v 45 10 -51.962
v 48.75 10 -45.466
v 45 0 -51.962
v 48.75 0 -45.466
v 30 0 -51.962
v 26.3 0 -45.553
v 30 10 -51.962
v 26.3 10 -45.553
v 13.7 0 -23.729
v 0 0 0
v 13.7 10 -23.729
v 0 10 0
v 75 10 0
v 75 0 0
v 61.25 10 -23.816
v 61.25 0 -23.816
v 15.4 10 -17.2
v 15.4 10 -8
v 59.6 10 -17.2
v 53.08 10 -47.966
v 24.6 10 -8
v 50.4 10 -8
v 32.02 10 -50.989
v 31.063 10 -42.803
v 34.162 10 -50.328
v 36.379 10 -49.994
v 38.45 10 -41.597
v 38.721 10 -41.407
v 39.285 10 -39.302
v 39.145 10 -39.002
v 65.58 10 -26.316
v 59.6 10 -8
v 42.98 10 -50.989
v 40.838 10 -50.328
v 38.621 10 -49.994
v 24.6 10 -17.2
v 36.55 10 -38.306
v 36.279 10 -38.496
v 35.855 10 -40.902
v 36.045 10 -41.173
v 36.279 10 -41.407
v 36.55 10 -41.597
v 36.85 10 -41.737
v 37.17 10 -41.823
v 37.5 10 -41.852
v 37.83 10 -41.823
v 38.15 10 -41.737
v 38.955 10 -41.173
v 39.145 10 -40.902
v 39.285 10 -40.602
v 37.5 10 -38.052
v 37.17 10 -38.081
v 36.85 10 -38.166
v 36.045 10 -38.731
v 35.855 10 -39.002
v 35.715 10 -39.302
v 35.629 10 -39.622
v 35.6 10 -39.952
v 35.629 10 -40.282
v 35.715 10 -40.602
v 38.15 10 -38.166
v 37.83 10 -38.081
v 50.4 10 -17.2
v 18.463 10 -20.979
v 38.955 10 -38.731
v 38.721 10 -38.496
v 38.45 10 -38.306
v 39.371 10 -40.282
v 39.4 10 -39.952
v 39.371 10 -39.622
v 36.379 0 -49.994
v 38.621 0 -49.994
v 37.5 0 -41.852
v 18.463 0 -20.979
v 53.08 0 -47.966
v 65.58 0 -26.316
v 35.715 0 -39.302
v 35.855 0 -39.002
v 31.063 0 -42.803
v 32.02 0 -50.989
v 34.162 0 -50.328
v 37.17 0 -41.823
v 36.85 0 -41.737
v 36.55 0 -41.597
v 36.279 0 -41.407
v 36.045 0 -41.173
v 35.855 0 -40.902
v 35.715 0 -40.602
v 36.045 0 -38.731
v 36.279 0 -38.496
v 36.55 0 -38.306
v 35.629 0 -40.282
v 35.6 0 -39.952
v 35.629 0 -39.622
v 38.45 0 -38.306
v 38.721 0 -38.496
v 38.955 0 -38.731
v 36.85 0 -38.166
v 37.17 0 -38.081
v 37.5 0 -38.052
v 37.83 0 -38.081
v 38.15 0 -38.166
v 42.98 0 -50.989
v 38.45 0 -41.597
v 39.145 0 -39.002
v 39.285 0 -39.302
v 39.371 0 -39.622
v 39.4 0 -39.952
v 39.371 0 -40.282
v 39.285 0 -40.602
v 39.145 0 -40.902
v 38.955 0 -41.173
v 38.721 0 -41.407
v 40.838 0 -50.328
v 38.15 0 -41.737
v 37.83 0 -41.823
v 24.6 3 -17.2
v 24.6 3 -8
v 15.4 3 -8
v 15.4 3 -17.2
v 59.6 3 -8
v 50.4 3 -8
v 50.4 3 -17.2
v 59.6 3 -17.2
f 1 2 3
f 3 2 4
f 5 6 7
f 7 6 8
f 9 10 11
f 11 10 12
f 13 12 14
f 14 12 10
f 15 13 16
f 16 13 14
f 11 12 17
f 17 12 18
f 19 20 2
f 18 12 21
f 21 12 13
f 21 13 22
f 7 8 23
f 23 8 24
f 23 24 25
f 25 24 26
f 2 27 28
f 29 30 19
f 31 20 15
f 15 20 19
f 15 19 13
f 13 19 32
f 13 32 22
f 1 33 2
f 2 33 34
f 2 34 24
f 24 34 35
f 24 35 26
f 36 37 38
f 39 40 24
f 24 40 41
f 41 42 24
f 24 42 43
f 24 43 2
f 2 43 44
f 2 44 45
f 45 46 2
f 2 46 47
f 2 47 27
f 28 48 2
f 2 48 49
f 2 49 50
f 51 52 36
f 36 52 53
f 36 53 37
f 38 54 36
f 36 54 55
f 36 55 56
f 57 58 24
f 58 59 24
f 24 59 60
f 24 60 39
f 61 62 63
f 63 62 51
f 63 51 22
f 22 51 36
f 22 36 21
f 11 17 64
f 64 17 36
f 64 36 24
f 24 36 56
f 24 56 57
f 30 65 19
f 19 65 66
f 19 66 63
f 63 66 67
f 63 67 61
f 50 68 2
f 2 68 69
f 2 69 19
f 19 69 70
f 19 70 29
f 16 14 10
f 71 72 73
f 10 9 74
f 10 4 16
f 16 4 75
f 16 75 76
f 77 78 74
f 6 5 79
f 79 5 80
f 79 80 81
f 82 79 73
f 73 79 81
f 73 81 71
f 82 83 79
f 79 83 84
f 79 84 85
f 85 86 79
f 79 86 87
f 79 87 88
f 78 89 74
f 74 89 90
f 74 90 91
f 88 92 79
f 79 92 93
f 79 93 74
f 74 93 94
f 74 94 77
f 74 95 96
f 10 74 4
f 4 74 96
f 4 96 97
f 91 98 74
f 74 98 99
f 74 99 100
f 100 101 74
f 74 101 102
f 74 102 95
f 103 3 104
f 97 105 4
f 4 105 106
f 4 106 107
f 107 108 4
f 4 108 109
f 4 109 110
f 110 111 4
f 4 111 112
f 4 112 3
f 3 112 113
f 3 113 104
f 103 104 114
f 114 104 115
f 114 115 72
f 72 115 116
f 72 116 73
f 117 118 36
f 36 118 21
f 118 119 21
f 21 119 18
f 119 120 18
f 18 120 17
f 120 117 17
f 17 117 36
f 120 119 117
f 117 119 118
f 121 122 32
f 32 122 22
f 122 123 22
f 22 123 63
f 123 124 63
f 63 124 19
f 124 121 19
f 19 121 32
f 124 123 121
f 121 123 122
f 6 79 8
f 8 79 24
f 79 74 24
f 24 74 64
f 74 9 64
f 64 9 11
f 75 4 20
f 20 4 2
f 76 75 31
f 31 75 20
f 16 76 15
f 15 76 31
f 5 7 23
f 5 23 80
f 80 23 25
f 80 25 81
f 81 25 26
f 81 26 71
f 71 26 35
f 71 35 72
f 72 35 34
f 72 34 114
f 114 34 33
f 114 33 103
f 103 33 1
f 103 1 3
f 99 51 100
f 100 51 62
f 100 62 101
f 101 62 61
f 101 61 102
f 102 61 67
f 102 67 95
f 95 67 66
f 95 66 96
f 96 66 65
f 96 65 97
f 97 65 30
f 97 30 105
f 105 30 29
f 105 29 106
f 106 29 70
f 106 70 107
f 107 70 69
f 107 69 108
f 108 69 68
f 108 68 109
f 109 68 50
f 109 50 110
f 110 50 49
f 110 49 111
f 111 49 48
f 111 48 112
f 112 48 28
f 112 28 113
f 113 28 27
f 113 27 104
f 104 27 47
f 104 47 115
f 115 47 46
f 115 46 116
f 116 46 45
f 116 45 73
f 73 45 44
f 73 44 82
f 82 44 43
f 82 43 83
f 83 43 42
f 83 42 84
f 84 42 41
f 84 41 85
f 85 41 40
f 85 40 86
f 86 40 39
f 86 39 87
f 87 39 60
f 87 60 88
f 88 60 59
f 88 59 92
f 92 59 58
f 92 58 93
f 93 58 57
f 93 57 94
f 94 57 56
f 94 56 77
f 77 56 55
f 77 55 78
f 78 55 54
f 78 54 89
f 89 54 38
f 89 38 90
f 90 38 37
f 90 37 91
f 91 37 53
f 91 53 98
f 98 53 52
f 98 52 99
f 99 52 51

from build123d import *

# Parameters (mm, degrees)
BOSS_EXTRUDE1_DEPTH = 10
SKETCH2_W           = 9.2
SKETCH2_H           = 9.2
CUT_EXTRUDE1_DEPTH  = 7
CUT_EXTRUDE2_DEPTH  = 11
BOSS_EXTRUDE2_DEPTH = 10
SKETCH5_R           = 1.9
CUT_EXTRUDE3_DEPTH  = 11


with BuildPart() as part:
    # Sketch1 → Boss-Extrude1 (new body)
    with BuildSketch(Plane(origin=(0, 0, 0), x_dir=(1, 0, 0), z_dir=(0, 1, 0))):
        Polygon((0, 0), (75, 0), (37.5, 64.951905284), align=None)
    extrude(amount=BOSS_EXTRUDE1_DEPTH)

    # Sketch2 → Cut-Extrude1 (cut)
    with BuildSketch(Plane(origin=(0, 10, 0), x_dir=(1, 0, 0), z_dir=(0, 1, 0))):
        with Locations((55, 12.6)):
            Rectangle(SKETCH2_W, SKETCH2_H)
        with Locations((20, 12.6)):
            Rectangle(SKETCH2_W, SKETCH2_H)
    extrude(amount=-CUT_EXTRUDE1_DEPTH, mode=Mode.SUBTRACT)

    # Sketch3 → Cut-Extrude2 (cut, through all)
    with BuildSketch(Plane(origin=(0, 10, 0), x_dir=(1, 0, 0), z_dir=(0, 1, 0))):
        Polygon((18.75, 32.475952642), (26.3, 45.552936239), (31.063139721, 42.802936239), (18.463139721, 20.979096064), (13.7, 23.729096064), align=None)
    extrude(amount=-CUT_EXTRUDE2_DEPTH, mode=Mode.SUBTRACT)

    # Sketch4 → Boss-Extrude2 (add)
    with BuildSketch(Plane(origin=(0, 10, 0), x_dir=(1, 0, 0), z_dir=(0, 1, 0))):
        Polygon((56.25, 32.475952642), (48.75, 45.466333699), (53.080127019, 47.966333699), (65.580127019, 26.315698604), (61.25, 23.815698604), align=None)
    extrude(amount=-BOSS_EXTRUDE2_DEPTH)

    # Sketch5 → Cut-Extrude3 (cut, through all)
    with BuildSketch(Plane(origin=(0, 10, 0), x_dir=(1, 0, 0), z_dir=(0, 1, 0))):
        with Locations((37.5, 39.951905284)):
            Circle(SKETCH5_R)
        with BuildLine():
            Line((30, 51.961524227), (37.5, 64.951905284))
            Line((37.5, 64.951905284), (45, 51.961524227))
            ThreePointArc((45, 51.961524227), (37.5, 49.951905284), (30, 51.961524227))
        make_face()
    extrude(amount=-CUT_EXTRUDE3_DEPTH, mode=Mode.SUBTRACT)


solid = part.part
